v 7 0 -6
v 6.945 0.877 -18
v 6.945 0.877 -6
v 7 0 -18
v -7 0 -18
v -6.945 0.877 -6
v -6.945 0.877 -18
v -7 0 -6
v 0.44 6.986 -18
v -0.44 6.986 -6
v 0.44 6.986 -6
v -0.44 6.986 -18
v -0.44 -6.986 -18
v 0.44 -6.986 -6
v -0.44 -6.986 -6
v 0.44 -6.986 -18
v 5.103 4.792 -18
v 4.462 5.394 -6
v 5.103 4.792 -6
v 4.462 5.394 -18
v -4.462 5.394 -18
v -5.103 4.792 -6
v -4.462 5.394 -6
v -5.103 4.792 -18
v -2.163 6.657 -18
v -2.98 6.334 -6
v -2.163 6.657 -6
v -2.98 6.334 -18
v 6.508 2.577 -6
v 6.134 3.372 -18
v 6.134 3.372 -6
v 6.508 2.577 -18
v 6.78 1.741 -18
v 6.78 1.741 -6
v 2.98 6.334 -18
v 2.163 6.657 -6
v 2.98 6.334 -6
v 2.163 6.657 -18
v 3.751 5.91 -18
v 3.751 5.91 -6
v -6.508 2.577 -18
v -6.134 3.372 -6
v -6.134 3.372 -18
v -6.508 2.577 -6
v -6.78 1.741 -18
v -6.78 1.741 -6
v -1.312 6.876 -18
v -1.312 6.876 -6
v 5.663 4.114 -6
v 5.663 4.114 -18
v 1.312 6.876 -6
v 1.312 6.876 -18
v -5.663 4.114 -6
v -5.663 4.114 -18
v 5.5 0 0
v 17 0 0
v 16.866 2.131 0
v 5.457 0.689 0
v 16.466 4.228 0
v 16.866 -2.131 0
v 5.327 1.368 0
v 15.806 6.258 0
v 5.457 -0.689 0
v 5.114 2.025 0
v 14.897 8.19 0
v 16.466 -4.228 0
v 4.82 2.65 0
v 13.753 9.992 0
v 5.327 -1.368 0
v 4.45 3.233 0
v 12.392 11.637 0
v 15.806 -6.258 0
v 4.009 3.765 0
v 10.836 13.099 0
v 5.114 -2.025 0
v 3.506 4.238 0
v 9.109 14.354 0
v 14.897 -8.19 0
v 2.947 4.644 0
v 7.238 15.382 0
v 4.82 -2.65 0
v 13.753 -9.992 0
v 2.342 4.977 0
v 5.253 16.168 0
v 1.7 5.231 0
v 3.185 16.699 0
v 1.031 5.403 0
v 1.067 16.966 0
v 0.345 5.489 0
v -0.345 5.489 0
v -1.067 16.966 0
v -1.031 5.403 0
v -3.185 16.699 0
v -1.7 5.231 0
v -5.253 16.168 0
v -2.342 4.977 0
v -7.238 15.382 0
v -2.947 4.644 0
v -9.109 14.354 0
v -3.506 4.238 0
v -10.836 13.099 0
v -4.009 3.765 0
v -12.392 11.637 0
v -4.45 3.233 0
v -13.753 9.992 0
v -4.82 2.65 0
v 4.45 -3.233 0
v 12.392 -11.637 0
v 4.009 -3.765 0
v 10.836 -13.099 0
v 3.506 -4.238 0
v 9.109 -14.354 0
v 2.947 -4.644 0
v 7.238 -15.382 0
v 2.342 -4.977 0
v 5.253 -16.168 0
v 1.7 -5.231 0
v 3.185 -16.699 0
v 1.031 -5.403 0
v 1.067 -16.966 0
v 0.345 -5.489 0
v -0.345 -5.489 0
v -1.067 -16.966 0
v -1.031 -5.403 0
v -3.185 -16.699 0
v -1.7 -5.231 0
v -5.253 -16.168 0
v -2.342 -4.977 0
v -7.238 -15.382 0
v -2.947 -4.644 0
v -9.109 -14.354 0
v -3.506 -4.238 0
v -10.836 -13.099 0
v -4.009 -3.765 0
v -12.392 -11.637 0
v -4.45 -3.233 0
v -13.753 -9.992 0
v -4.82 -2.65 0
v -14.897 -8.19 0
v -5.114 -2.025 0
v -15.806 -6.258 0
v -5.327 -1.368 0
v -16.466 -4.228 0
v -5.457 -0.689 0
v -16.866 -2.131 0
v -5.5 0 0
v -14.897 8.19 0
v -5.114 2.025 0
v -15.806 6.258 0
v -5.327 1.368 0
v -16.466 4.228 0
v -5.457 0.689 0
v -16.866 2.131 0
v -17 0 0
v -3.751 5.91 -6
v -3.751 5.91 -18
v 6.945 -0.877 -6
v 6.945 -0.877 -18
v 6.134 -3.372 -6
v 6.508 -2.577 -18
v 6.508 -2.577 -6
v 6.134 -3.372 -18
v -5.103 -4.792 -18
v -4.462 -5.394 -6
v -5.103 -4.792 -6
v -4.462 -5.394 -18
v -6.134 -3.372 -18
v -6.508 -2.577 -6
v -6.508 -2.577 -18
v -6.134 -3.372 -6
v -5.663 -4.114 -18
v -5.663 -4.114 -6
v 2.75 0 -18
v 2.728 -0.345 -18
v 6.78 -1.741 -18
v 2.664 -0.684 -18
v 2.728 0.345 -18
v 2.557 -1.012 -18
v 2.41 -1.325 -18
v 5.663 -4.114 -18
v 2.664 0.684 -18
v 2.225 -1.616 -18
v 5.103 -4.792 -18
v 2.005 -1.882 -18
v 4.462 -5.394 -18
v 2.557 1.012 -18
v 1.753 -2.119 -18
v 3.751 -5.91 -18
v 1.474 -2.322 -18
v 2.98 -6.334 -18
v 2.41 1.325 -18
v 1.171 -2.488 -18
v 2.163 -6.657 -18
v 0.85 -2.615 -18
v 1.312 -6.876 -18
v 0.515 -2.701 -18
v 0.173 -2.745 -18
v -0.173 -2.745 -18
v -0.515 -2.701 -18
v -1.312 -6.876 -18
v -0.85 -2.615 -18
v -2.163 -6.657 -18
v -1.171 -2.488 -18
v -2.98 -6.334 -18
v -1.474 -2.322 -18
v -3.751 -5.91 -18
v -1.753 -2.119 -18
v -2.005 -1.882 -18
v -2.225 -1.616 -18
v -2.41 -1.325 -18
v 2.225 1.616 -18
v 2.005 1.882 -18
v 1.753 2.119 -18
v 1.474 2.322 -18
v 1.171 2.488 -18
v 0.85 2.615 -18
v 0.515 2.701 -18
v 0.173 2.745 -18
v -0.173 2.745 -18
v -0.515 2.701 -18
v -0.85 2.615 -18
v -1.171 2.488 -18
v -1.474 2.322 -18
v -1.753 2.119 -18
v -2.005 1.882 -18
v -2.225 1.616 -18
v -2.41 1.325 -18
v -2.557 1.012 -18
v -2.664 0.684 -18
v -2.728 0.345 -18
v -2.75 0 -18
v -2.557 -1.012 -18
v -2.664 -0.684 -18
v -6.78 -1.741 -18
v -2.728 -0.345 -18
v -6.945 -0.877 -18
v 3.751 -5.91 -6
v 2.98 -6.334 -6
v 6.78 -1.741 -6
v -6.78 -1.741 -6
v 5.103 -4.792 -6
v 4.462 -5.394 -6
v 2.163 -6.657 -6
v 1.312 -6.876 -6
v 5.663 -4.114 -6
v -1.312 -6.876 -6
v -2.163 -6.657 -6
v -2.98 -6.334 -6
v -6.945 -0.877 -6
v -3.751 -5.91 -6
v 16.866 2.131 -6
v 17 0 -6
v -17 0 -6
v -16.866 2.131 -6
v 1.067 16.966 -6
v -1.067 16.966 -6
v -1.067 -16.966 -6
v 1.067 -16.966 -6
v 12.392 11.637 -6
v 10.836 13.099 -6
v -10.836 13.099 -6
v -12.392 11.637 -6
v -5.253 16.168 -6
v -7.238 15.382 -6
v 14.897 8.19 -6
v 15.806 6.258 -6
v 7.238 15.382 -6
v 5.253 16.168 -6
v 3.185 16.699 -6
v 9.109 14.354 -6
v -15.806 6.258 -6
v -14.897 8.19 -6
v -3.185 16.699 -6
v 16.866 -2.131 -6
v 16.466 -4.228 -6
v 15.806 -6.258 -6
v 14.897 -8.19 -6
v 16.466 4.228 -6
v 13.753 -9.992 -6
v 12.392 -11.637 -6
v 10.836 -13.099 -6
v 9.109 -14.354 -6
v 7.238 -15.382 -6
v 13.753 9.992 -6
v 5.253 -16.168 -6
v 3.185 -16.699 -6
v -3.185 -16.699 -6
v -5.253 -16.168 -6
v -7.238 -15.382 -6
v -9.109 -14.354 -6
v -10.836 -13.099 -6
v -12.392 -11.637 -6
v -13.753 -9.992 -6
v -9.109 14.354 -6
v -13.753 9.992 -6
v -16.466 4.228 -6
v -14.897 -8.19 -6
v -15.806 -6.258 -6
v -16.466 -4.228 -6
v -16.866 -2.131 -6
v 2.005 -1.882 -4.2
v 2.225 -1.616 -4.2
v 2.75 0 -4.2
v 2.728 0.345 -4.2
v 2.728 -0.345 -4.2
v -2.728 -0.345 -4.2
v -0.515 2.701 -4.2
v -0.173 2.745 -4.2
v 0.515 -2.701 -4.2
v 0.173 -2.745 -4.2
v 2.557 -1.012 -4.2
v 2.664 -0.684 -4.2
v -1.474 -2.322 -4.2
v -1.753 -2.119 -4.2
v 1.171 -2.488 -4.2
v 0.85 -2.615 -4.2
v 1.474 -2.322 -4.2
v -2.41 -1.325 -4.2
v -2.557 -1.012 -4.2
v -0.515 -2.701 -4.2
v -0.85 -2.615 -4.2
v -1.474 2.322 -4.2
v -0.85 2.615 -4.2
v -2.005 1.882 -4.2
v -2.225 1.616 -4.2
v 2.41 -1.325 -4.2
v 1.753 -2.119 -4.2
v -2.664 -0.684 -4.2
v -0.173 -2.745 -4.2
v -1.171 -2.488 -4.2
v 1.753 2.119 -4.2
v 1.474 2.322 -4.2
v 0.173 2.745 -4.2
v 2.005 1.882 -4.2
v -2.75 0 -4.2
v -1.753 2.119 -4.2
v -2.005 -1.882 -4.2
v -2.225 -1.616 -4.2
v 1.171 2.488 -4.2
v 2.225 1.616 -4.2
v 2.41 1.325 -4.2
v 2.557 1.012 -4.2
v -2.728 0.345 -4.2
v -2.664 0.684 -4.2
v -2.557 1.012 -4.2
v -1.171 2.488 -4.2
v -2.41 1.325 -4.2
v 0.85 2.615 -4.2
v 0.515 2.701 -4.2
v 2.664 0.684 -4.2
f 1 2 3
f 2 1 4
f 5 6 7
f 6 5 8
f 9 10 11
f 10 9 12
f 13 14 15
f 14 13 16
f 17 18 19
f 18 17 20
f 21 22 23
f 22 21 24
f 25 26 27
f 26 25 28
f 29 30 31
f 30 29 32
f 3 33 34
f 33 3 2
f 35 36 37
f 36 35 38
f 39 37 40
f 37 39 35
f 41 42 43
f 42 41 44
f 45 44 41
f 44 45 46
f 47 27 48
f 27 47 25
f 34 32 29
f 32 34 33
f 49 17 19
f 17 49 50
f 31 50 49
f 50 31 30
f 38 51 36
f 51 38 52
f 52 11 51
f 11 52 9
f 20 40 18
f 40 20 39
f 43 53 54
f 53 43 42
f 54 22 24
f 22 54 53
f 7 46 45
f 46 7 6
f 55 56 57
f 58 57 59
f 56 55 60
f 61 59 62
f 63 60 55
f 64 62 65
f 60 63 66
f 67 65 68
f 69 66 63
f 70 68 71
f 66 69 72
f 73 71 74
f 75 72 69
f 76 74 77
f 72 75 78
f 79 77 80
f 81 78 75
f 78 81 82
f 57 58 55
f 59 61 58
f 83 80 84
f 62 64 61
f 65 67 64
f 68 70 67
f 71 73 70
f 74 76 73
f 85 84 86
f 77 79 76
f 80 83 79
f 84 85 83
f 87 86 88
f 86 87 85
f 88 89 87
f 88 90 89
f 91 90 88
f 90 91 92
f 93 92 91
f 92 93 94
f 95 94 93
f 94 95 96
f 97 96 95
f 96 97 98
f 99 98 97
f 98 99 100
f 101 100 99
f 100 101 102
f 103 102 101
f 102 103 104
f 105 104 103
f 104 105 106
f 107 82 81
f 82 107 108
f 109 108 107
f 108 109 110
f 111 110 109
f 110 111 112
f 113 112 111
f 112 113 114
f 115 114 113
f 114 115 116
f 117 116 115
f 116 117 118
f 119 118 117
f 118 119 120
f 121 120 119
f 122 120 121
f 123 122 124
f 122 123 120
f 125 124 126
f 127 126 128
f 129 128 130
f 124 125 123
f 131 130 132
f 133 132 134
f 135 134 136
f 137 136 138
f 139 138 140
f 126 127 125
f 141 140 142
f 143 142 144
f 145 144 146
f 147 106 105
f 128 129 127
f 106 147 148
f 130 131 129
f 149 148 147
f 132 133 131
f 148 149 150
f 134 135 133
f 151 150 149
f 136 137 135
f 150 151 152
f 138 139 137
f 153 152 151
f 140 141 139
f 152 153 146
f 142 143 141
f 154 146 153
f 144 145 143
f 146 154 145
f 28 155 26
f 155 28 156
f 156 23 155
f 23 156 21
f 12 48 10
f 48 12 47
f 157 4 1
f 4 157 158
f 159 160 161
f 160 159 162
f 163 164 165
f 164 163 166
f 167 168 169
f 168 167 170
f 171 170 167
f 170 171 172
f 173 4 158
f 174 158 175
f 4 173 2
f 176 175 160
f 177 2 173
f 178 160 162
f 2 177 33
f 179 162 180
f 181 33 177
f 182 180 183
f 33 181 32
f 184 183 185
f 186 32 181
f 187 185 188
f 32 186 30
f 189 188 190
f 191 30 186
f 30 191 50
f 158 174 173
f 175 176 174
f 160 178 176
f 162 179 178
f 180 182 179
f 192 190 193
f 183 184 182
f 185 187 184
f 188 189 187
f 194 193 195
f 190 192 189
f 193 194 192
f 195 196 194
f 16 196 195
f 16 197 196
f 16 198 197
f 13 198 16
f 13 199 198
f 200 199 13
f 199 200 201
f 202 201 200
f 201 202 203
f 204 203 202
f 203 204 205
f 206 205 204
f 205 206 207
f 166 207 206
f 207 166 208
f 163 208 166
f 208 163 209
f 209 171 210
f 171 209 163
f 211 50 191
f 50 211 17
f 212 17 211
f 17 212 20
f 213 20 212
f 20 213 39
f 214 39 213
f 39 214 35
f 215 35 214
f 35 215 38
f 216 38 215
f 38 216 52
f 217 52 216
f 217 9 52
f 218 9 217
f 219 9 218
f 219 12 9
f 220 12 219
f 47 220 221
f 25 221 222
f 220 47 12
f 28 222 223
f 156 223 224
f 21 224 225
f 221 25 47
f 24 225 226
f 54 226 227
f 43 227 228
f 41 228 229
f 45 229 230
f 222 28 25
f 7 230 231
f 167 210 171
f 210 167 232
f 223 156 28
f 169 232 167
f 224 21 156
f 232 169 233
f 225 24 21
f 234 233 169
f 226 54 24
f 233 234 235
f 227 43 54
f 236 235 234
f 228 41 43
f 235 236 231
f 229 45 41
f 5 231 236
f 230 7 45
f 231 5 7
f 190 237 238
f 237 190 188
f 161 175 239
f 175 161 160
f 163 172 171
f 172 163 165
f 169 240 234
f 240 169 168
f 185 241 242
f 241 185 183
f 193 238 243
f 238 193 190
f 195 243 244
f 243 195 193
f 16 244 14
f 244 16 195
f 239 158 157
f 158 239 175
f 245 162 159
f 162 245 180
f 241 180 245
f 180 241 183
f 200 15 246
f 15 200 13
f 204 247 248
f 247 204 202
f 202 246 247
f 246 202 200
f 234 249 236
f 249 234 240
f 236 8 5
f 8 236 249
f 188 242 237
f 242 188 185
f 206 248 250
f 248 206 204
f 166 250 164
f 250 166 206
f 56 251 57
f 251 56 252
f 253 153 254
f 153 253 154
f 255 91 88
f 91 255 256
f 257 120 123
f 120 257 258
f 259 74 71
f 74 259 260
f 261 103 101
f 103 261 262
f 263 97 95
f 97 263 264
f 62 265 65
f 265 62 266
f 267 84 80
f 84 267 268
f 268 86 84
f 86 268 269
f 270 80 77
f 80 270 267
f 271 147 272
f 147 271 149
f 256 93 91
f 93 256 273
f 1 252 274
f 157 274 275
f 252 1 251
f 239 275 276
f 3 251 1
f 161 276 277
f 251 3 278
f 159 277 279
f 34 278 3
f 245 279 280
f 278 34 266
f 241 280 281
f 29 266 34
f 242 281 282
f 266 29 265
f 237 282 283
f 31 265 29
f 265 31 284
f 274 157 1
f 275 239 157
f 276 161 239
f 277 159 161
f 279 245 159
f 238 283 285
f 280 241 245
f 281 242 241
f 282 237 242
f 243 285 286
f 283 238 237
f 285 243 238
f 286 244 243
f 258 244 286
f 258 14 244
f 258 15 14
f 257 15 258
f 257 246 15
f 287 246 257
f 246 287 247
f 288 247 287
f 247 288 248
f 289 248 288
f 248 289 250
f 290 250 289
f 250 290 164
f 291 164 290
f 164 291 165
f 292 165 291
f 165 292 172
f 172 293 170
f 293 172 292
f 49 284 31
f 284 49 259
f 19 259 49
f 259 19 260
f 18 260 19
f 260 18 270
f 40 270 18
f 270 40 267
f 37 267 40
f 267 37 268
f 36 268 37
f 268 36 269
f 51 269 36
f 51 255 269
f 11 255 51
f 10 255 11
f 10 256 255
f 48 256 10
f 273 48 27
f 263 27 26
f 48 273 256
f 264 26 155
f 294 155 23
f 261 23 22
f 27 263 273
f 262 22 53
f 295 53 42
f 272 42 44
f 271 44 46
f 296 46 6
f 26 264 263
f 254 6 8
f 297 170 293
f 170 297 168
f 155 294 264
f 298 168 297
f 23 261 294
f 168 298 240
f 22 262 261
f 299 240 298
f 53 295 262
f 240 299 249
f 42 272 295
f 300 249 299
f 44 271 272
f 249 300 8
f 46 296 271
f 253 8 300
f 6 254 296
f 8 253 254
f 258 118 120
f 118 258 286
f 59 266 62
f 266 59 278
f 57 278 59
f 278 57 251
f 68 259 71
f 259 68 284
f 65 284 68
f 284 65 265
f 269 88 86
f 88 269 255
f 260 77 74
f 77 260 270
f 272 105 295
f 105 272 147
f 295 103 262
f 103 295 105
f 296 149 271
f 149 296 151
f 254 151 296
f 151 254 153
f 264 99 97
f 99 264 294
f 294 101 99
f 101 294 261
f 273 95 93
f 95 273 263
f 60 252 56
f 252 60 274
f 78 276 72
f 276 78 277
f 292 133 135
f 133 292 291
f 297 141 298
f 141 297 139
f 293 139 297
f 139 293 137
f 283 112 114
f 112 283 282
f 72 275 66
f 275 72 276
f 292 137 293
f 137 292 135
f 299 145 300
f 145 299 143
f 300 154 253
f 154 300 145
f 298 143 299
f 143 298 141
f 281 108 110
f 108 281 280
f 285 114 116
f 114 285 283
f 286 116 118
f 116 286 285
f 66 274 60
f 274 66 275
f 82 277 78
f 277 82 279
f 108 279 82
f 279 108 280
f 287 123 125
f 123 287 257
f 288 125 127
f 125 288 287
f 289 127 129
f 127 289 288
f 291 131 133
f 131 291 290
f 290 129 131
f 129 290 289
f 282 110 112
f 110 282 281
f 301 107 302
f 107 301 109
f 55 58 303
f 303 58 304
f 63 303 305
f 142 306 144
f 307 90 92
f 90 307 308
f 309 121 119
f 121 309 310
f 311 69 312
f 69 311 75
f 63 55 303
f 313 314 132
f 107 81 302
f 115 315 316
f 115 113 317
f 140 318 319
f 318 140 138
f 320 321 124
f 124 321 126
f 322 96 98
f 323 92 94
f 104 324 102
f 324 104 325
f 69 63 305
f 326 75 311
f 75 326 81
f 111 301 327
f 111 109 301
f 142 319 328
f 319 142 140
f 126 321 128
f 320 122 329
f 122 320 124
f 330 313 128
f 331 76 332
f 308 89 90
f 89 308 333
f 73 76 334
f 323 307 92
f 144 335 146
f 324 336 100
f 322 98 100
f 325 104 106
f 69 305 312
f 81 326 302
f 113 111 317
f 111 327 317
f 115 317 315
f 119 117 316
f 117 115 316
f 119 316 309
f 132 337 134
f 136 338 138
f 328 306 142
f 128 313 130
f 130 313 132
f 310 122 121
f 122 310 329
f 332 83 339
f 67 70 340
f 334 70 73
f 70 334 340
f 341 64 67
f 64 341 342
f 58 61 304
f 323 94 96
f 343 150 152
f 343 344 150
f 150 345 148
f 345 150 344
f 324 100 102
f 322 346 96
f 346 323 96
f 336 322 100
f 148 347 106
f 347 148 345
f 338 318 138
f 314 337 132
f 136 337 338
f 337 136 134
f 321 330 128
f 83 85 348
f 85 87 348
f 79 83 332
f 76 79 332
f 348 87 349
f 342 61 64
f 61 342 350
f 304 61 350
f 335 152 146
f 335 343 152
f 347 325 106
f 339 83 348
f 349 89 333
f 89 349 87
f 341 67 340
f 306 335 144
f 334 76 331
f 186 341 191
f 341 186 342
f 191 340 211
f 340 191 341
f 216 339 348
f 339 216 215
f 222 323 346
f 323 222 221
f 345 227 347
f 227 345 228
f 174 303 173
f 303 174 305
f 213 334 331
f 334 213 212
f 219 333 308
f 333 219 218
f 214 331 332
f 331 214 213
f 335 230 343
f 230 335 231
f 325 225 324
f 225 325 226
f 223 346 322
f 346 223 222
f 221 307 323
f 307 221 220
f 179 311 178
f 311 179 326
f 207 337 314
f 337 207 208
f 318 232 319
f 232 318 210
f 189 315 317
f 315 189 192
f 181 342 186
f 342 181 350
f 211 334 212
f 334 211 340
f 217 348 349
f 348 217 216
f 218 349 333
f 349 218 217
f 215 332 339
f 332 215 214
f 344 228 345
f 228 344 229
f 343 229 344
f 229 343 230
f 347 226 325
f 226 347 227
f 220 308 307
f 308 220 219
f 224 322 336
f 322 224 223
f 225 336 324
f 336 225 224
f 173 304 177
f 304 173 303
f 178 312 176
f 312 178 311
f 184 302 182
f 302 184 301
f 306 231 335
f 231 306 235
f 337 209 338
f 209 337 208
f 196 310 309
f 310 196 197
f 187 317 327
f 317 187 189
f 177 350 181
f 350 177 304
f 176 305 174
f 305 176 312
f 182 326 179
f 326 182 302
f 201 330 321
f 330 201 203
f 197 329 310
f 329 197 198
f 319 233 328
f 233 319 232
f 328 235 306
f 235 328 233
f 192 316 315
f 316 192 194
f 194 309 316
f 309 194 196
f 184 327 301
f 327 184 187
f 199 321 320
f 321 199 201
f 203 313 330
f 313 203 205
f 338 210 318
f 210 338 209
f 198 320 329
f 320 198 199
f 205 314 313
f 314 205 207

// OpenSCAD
$fn = 50;


difference() {
	union() {
		translate(v = [0, 0, -18.0000000000]) {
			cylinder(h = 18, r = 7.0000000000);
		}
		translate(v = [0, 0, -6.0000000000]) {
			cylinder(h = 6, r = 17.0000000000);
		}
	}
	union() {
		translate(v = [0, 0, 0]) {
			rotate(a = [0, 0, 0]) {
				difference() {
					union() {
						#translate(v = [0, 0, -18.0000000000]) {
							cylinder(h = 18, r = 2.2500000000);
						}
						#translate(v = [0, 0, -4.2000000000]) {
							cylinder(h = 4.2000000000, r1 = 2.7500000000, r2 = 5.5000000000);
						}
						#translate(v = [0, 0, -18.0000000000]) {
							cylinder(h = 18, r = 2.7500000000);
						}
						#translate(v = [0, 0, -18.0000000000]) {
							cylinder(h = 18, r = 2.2500000000);
						}
					}
					union();
				}
			}
		}
	}
}
